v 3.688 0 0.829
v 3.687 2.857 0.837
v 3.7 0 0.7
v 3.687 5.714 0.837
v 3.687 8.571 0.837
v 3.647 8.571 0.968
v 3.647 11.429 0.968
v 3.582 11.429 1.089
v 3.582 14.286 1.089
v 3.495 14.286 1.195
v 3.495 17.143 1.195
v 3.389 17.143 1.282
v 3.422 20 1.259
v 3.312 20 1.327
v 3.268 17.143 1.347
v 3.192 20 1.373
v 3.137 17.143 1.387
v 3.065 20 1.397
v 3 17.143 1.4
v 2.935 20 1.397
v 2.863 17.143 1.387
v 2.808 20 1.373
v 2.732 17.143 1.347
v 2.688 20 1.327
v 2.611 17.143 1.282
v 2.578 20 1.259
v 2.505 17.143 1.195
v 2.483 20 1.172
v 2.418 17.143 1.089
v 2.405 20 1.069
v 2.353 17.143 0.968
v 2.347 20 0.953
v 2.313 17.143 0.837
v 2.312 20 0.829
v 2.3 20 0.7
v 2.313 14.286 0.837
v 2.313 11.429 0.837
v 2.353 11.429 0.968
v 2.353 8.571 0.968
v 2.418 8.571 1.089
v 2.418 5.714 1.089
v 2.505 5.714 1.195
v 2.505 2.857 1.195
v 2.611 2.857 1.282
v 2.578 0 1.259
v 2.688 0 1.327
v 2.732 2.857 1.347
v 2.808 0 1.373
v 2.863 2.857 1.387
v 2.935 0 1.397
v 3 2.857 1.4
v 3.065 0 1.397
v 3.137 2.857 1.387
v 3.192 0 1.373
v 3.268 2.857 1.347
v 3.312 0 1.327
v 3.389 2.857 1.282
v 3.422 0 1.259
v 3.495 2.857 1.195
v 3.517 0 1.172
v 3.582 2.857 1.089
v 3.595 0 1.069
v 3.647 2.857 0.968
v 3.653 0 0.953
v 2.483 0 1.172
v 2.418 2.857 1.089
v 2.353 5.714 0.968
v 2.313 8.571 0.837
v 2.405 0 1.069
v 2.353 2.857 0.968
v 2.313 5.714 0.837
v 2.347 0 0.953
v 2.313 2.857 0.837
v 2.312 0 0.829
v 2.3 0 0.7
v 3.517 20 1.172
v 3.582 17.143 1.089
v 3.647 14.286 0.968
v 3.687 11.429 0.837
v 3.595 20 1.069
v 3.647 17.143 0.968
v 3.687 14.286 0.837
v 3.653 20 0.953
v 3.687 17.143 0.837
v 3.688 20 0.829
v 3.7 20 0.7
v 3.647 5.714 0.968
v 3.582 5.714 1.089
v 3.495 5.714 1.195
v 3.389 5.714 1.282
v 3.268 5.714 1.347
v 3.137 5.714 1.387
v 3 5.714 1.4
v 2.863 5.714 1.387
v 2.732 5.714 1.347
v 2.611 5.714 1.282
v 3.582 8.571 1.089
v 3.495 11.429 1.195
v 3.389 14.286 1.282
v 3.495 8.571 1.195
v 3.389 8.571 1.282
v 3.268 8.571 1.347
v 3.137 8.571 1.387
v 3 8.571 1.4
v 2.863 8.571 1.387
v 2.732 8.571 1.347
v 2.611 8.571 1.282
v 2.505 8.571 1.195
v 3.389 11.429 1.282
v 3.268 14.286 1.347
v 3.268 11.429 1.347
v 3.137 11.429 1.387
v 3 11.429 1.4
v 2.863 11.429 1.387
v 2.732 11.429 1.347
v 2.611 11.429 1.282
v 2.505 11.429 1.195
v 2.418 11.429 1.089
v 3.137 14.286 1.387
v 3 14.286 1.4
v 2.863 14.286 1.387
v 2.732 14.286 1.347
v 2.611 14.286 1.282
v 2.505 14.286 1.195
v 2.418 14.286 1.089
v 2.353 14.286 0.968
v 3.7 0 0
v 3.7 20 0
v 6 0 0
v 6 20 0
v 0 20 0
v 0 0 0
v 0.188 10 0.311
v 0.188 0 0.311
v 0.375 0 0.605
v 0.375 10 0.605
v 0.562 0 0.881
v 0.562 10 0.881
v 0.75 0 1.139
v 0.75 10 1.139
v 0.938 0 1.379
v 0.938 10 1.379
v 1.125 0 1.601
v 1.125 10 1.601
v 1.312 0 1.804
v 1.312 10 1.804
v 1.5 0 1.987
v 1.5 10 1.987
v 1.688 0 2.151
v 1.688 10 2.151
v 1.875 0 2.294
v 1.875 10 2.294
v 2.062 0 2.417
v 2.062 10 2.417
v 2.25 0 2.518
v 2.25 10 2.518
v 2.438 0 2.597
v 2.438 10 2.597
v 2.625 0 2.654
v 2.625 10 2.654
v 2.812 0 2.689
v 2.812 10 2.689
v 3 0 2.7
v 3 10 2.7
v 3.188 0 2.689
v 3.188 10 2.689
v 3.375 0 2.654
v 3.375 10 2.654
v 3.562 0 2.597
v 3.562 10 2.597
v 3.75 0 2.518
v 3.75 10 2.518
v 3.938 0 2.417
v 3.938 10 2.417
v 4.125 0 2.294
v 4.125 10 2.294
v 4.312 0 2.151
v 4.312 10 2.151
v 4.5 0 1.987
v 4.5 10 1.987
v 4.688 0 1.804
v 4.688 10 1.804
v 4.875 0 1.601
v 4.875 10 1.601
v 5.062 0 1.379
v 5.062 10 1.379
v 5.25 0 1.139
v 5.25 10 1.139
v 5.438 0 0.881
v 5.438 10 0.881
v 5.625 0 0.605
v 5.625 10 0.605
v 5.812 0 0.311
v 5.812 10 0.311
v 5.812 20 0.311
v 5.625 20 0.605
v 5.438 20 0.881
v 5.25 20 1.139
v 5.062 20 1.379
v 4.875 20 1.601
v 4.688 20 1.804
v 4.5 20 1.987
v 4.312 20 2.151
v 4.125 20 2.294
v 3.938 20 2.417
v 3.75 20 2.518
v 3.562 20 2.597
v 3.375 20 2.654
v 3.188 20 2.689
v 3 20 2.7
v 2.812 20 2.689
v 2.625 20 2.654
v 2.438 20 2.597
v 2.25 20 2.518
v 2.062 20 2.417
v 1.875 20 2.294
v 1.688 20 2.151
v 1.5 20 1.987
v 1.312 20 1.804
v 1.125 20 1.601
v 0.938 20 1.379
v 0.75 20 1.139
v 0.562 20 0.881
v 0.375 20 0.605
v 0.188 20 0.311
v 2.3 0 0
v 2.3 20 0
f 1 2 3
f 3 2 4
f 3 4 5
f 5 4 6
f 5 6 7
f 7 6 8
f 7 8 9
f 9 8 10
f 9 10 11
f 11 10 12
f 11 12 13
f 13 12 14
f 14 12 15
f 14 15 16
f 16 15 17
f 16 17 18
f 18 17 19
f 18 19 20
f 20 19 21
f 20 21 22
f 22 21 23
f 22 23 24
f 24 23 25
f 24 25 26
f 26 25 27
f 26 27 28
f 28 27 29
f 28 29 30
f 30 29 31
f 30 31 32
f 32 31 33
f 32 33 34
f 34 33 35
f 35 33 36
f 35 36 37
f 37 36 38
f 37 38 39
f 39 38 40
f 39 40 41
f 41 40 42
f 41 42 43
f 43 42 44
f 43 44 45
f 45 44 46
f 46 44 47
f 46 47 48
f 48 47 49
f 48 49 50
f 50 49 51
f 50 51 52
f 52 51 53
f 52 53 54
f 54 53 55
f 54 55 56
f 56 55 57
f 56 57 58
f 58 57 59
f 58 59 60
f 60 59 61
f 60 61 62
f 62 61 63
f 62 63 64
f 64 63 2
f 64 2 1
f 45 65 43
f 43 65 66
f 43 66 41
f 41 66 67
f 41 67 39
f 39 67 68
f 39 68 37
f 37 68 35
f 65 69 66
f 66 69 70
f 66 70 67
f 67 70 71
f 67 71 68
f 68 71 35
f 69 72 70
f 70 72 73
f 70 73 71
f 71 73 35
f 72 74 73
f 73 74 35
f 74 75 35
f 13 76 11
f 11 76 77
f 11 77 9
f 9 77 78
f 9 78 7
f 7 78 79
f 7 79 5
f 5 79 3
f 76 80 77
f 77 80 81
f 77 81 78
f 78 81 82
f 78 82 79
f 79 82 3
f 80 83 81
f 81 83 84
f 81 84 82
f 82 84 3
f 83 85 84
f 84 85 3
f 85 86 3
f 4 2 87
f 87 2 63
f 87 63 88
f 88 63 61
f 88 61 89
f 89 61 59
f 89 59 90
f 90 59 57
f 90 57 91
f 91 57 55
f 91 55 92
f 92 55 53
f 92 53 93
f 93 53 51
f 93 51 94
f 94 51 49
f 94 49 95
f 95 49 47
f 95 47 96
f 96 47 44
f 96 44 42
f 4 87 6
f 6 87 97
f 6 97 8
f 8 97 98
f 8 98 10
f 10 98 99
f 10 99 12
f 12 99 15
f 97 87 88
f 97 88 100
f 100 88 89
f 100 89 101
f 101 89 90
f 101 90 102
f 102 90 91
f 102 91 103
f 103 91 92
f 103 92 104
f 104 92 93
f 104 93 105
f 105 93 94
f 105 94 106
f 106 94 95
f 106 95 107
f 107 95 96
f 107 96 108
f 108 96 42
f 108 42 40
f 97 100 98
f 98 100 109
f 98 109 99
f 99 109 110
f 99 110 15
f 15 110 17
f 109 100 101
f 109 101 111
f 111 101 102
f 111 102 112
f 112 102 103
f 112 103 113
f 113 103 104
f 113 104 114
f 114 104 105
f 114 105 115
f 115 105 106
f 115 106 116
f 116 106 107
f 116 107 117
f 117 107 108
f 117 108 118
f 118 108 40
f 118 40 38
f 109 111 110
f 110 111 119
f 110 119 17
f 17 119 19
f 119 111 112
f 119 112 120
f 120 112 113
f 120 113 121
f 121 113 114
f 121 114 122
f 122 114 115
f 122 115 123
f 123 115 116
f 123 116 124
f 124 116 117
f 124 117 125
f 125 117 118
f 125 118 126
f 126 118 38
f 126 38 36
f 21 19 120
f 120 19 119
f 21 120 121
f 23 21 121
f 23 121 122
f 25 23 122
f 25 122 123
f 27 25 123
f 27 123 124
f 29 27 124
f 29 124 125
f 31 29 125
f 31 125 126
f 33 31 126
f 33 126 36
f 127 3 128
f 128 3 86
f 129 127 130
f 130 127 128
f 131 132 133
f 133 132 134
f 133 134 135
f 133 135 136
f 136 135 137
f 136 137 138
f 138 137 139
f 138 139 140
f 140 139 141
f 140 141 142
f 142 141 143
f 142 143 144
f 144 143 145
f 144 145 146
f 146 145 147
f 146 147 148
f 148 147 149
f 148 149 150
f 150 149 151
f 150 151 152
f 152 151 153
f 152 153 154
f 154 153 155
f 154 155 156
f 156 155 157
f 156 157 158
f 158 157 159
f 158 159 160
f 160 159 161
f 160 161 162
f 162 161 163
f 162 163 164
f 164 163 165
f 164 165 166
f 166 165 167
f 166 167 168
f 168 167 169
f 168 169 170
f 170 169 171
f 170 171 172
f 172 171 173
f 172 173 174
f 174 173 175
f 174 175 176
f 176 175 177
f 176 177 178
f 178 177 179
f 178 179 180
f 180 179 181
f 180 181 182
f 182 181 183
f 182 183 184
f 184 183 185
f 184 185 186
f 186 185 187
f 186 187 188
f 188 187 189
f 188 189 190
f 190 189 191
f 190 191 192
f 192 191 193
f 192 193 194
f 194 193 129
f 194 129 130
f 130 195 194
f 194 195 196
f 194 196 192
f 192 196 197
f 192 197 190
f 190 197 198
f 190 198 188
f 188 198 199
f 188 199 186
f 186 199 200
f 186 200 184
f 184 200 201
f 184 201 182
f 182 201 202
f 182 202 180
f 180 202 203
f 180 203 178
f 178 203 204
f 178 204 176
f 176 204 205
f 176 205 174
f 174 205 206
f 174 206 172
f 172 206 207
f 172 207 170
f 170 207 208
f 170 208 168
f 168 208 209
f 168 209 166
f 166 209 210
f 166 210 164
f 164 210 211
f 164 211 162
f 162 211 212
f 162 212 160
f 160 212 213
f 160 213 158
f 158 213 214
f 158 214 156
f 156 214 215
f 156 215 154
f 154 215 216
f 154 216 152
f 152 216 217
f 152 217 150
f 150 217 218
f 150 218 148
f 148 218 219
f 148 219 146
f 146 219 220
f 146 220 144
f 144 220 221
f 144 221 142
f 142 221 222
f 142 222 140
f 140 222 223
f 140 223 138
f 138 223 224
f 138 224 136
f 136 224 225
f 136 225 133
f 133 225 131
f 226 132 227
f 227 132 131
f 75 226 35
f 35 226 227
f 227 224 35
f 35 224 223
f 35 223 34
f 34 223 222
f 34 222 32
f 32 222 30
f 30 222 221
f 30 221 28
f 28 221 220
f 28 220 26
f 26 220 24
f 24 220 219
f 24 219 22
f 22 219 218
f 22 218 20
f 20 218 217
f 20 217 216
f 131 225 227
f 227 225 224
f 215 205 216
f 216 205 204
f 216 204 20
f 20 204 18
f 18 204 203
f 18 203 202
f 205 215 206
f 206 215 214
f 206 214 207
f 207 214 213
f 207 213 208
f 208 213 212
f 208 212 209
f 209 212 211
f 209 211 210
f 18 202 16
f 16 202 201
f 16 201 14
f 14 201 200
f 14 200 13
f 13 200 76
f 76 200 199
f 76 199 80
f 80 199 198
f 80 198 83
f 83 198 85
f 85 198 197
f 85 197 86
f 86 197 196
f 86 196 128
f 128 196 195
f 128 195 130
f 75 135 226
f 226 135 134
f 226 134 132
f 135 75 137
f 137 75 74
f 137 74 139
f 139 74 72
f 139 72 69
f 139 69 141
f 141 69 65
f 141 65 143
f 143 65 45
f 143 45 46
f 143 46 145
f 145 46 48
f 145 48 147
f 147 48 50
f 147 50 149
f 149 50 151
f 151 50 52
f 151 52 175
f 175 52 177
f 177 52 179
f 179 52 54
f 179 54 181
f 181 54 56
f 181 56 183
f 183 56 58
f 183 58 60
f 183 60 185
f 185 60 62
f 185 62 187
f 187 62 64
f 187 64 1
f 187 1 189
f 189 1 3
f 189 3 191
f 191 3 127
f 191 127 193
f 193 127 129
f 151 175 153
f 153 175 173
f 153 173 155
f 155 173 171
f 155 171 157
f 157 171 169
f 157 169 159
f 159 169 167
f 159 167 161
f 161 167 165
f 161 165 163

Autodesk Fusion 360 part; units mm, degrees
sketch "Sketch1" plane through (0, 0, 0) normal (0, 1, 0) x (1, 0, 0)
  line L0 (0, 0) -> (6, 0)
  line L1 (3, 0) -> (3, -0.7)
  circle A0 centre (3, -0.7) radius 0.7
  line L2 (3, -0.7) -> (3, -2.7)
  spline S0 degree 5 poles (0, 0) (0.12, -0.2048) (0.36, -0.5965) (0.72, -1.1304) (1.2, -1.7331) (1.8, -2.2925) (2.4, -2.6403) (3, -2.7594) (3.6, -2.6403) (4.2, -2.2925) (4.8, -1.7331) (5.28, -1.1304) (5.64, -0.5965) (5.88, -0.2048) (6, 0) knots 0 0 0 0 0 0 0.1 0.2 0.3 0.4 0.5 0.6 0.7 0.8 0.9 1 1 1 1 1 1
  line L3 (3, -0.7) -> (2.3, -0.7)
  line L4 (2.3, -0.7) -> (2.3, 0)
  line L5 (3, -0.7) -> (3.7, -0.7)
  line L6 (3.7, -0.7) -> (3.7, 0)
  dimension "d1" = 6
  dimension "d2" = 0.7
  dimension "d3" = 2
extrude "Extrude1" add sketch "Sketch1" along normal blind 20 contours L0 A0 L2 S0 L4 | L0 A0 L2 S0 L6
